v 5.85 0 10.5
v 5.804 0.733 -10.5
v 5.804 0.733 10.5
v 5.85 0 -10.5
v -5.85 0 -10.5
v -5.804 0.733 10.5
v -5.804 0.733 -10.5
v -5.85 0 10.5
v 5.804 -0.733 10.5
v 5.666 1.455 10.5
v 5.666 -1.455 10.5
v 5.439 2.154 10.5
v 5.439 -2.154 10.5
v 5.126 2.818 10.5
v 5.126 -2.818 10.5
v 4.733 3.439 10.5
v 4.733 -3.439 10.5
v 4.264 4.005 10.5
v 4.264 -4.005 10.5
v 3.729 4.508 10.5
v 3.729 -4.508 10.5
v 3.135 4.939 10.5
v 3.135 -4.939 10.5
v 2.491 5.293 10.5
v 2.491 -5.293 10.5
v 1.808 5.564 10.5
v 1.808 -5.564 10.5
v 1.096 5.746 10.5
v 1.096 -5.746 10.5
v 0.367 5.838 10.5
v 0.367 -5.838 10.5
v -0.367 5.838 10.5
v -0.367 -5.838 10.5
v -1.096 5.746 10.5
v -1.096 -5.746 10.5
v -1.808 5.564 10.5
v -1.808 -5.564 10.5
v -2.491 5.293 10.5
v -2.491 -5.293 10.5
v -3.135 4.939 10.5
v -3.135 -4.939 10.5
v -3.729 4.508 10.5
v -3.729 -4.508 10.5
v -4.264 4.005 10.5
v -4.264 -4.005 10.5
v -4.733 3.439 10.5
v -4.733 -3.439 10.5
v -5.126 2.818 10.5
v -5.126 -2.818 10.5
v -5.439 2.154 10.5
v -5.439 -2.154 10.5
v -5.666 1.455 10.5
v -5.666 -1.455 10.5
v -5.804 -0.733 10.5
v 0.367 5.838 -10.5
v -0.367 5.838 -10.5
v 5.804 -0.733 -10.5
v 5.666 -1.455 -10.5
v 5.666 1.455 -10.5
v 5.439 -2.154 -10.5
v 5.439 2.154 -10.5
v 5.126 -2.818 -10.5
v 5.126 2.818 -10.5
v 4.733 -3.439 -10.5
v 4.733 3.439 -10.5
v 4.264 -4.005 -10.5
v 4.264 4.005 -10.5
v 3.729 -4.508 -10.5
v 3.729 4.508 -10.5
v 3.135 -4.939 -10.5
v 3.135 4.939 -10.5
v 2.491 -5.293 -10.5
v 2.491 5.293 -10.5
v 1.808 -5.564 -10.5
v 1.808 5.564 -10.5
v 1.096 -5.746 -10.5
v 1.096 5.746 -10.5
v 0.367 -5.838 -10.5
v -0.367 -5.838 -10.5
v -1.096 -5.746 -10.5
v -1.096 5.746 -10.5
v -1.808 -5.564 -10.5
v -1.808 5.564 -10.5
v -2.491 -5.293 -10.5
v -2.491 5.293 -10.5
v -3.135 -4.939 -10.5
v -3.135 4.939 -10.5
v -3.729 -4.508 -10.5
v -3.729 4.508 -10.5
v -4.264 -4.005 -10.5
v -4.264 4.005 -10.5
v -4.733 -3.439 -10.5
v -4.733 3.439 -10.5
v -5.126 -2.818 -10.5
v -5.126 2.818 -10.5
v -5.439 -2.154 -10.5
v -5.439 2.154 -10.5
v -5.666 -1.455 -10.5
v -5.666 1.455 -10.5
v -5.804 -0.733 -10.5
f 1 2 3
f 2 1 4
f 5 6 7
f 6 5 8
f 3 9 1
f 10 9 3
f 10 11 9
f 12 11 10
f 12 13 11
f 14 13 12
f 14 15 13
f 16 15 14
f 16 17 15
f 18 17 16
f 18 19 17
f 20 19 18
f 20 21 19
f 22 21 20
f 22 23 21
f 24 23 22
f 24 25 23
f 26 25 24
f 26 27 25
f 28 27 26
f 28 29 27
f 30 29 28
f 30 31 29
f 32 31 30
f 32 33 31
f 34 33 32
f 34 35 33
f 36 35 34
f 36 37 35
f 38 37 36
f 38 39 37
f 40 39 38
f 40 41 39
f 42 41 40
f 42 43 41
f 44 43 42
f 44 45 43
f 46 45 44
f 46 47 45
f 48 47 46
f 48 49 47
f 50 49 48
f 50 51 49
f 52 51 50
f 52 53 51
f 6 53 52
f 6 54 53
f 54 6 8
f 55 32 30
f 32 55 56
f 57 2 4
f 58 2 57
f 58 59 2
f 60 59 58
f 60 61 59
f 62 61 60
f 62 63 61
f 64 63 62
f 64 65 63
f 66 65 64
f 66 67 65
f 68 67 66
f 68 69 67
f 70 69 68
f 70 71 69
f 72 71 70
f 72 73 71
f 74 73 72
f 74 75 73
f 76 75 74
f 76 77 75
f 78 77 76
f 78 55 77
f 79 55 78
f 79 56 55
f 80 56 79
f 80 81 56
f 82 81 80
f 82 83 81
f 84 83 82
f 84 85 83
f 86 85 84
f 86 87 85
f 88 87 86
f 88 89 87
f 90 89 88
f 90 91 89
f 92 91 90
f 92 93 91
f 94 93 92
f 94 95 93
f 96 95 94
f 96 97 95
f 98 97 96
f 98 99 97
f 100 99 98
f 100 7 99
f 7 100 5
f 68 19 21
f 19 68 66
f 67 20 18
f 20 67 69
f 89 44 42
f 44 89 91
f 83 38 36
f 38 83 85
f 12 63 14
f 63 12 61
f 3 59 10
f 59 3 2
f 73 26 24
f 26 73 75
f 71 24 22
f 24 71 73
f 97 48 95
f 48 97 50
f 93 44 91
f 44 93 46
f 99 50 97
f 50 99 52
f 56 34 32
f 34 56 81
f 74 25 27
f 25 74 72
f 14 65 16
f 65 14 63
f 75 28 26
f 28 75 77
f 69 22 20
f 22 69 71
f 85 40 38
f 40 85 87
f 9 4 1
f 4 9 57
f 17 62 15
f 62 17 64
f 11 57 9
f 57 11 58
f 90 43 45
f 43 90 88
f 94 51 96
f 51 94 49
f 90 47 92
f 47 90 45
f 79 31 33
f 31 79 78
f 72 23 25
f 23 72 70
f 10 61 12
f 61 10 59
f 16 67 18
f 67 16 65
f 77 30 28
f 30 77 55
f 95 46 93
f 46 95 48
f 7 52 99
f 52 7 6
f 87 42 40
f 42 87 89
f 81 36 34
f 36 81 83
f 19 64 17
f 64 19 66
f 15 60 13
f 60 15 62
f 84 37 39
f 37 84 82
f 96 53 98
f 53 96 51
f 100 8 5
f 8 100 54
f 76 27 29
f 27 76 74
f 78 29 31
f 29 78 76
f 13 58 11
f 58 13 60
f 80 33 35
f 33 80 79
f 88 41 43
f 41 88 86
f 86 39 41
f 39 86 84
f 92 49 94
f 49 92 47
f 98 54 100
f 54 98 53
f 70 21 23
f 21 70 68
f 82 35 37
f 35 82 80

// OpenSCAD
$fn = 50;


difference() {
	union() {
		translate(v = [0, 0, -10.5000000000]) {
			cylinder(h = 21, r = 5.8500000000);
		}
	}
	union() {
		translate(v = [0, 0, -100.0000000000]) {
			cylinder(h = 200, r = 0);
		}
	}
}
